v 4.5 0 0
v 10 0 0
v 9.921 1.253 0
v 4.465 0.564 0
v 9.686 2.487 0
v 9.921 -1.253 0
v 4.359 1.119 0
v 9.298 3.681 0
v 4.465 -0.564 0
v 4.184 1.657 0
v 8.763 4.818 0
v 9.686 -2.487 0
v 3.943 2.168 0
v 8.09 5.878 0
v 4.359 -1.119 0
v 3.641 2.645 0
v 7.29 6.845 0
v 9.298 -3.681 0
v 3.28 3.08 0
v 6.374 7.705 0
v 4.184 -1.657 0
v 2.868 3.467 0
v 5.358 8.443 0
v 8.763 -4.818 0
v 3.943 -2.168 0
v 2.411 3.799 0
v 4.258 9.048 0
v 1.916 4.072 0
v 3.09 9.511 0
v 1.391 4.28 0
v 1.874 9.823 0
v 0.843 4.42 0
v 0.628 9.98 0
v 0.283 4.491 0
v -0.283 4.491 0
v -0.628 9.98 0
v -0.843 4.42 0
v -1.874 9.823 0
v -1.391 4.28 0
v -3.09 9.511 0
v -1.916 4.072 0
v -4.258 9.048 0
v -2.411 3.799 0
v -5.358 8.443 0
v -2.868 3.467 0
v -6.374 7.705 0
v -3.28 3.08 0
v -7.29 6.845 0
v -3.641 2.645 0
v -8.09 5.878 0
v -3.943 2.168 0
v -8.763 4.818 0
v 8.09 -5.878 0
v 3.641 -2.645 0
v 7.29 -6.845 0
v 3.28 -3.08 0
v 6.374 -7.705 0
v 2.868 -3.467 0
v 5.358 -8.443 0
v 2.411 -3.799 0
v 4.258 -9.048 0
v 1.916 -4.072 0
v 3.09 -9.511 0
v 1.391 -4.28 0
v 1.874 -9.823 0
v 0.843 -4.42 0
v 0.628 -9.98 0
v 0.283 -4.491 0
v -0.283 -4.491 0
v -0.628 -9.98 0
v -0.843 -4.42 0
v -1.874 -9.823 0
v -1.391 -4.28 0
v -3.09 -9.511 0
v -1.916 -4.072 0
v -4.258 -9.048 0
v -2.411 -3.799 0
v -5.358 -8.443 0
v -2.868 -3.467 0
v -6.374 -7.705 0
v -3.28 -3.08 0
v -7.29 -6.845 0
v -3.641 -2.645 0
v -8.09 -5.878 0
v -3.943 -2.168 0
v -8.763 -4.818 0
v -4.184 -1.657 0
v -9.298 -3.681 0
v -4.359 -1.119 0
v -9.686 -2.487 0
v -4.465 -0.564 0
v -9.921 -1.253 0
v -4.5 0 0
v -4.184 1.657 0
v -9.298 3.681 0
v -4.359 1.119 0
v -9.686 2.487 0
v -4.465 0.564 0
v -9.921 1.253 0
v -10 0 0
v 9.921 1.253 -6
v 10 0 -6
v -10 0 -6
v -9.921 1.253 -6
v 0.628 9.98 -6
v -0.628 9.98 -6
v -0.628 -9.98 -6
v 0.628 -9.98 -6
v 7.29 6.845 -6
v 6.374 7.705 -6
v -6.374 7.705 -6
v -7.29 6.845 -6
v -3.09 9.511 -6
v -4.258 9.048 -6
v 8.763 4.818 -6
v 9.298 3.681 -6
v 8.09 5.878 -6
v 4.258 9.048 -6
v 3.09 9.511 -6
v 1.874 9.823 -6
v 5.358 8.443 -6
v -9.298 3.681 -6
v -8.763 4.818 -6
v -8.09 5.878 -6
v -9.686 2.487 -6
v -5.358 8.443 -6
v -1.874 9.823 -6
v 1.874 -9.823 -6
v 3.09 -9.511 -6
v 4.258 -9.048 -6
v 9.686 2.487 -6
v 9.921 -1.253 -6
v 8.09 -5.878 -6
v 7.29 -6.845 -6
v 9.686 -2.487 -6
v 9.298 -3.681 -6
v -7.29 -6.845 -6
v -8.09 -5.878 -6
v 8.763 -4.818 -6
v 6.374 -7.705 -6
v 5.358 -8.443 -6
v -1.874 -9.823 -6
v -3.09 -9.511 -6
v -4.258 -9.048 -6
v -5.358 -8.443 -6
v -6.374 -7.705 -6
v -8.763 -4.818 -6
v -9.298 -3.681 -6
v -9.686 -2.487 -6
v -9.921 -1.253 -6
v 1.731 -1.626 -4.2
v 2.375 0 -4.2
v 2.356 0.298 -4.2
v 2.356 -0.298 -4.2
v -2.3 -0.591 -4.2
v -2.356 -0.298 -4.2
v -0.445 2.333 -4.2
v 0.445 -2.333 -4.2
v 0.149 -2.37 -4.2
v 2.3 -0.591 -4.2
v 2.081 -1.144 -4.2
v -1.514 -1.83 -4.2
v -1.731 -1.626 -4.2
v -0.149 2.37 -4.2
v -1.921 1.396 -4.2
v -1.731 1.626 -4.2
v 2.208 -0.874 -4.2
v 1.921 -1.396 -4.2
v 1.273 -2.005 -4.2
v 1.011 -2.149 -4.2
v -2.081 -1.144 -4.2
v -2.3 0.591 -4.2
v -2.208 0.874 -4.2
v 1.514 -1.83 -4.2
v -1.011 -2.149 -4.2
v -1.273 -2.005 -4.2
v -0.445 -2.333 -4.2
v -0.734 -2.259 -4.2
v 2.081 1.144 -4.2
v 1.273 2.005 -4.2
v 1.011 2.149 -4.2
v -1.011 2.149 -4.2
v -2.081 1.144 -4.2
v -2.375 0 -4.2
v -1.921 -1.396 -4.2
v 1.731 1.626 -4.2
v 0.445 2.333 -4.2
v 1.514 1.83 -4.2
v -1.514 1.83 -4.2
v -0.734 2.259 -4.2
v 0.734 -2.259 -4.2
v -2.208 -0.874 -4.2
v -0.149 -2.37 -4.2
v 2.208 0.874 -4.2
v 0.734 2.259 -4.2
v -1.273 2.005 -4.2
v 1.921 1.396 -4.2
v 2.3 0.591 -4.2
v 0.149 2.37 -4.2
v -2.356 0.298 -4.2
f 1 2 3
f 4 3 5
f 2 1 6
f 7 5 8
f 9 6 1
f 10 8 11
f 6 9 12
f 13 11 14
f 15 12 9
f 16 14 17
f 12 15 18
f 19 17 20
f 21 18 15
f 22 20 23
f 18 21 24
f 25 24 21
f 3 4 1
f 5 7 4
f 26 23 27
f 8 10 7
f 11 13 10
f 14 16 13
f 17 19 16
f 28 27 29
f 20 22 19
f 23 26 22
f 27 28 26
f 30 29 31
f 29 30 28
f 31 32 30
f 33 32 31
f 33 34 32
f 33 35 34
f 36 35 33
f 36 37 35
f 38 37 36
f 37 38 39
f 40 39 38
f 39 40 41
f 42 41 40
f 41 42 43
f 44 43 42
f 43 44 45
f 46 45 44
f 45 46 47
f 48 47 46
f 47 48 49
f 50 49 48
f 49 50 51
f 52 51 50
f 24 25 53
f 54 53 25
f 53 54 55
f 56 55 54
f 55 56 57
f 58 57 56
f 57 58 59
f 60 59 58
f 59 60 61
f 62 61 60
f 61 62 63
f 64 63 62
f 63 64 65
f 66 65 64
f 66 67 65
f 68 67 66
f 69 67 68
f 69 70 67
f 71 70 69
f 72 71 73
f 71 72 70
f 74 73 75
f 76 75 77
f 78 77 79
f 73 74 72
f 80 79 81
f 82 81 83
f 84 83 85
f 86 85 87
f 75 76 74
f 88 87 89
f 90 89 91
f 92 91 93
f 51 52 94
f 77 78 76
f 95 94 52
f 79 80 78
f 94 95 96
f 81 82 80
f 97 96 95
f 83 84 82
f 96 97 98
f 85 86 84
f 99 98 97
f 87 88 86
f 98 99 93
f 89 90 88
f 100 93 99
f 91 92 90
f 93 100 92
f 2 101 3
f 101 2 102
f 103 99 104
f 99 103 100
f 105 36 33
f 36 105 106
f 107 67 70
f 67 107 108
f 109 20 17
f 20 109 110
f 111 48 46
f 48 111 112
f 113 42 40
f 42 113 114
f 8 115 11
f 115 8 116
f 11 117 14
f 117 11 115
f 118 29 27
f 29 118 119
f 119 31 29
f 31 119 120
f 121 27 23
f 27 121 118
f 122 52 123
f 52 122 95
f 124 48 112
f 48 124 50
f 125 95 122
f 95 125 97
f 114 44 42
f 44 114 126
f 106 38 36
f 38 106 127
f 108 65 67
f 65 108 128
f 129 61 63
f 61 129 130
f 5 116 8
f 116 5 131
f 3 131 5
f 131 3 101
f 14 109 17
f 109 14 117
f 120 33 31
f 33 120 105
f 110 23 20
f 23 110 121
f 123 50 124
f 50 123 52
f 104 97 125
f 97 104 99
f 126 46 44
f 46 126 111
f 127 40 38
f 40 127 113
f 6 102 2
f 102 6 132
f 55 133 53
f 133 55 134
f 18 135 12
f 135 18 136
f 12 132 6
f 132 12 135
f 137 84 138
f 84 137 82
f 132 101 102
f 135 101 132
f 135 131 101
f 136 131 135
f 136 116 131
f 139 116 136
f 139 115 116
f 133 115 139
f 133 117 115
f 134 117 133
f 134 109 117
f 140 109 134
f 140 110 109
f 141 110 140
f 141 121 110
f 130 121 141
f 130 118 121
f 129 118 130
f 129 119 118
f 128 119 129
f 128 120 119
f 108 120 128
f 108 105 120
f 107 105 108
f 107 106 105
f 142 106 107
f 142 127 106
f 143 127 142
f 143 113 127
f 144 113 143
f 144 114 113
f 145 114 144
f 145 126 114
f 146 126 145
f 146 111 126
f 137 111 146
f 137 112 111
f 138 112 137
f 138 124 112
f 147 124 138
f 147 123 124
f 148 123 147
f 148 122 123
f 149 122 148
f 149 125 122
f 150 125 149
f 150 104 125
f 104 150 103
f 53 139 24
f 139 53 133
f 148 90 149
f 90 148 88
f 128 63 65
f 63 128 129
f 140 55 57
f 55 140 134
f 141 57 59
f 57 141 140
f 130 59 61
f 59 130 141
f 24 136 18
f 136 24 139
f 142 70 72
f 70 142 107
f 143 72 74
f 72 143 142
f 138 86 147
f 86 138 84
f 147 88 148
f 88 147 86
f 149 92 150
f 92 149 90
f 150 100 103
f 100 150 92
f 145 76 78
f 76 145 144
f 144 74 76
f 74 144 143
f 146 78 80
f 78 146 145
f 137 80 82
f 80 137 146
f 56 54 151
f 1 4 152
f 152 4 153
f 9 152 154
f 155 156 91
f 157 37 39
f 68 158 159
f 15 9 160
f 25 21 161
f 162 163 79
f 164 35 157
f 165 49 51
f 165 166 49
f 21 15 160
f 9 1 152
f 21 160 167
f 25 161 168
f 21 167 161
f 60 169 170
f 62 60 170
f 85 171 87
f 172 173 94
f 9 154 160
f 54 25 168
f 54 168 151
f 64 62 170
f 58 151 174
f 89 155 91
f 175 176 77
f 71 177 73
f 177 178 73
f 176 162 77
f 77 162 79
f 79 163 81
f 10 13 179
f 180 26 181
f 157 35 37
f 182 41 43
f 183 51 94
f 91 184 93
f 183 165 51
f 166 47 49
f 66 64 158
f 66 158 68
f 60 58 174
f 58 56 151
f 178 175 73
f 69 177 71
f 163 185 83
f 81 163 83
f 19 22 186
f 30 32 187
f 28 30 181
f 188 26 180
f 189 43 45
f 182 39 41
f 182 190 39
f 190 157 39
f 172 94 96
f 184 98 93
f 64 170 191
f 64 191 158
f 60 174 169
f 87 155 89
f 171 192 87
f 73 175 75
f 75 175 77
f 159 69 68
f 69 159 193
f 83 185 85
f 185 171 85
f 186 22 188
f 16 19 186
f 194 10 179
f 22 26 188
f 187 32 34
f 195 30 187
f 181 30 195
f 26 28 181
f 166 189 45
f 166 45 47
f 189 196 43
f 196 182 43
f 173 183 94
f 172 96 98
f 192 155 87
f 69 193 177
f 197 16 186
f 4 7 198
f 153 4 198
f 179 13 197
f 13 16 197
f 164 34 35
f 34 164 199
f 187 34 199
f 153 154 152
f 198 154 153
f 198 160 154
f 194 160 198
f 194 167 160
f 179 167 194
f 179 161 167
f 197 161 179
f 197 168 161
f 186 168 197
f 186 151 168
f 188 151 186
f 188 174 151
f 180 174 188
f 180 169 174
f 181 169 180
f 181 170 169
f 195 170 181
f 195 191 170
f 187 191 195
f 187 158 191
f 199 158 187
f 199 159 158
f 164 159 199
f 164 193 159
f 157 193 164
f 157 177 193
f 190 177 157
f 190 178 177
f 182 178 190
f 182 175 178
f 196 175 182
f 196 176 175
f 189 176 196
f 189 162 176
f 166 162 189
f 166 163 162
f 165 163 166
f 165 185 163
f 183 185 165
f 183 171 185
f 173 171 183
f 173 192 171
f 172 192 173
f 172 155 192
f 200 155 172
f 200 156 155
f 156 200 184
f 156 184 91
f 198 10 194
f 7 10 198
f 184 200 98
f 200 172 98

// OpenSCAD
$fn = 50;


difference() {
	union() {
		translate(v = [0, 0, -3.0000000000]) {
			cylinder(h = 3, r = 7.0000000000);
		}
		translate(v = [0, 0, -6.0000000000]) {
			cylinder(h = 6, r = 10.0000000000);
		}
	}
	union() {
		translate(v = [0, 0, 0]) {
			rotate(a = [0, 0, 0]) {
				difference() {
					union() {
						#translate(v = [0, 0, -3.0000000000]) {
							cylinder(h = 3, r = 2.2500000000);
						}
						#translate(v = [0, 0, -4.2000000000]) {
							cylinder(h = 4.2000000000, r = 7.0000000000, r1 = 2.3750000000, r2 = 4.5000000000);
						}
						#translate(v = [0, 0, -3.0000000000]) {
							cylinder(h = 3, r = 2.3750000000);
						}
						#translate(v = [0, 0, -3.0000000000]) {
							cylinder(h = 3, r = 2.2500000000);
						}
					}
					union();
				}
			}
		}
	}
}
